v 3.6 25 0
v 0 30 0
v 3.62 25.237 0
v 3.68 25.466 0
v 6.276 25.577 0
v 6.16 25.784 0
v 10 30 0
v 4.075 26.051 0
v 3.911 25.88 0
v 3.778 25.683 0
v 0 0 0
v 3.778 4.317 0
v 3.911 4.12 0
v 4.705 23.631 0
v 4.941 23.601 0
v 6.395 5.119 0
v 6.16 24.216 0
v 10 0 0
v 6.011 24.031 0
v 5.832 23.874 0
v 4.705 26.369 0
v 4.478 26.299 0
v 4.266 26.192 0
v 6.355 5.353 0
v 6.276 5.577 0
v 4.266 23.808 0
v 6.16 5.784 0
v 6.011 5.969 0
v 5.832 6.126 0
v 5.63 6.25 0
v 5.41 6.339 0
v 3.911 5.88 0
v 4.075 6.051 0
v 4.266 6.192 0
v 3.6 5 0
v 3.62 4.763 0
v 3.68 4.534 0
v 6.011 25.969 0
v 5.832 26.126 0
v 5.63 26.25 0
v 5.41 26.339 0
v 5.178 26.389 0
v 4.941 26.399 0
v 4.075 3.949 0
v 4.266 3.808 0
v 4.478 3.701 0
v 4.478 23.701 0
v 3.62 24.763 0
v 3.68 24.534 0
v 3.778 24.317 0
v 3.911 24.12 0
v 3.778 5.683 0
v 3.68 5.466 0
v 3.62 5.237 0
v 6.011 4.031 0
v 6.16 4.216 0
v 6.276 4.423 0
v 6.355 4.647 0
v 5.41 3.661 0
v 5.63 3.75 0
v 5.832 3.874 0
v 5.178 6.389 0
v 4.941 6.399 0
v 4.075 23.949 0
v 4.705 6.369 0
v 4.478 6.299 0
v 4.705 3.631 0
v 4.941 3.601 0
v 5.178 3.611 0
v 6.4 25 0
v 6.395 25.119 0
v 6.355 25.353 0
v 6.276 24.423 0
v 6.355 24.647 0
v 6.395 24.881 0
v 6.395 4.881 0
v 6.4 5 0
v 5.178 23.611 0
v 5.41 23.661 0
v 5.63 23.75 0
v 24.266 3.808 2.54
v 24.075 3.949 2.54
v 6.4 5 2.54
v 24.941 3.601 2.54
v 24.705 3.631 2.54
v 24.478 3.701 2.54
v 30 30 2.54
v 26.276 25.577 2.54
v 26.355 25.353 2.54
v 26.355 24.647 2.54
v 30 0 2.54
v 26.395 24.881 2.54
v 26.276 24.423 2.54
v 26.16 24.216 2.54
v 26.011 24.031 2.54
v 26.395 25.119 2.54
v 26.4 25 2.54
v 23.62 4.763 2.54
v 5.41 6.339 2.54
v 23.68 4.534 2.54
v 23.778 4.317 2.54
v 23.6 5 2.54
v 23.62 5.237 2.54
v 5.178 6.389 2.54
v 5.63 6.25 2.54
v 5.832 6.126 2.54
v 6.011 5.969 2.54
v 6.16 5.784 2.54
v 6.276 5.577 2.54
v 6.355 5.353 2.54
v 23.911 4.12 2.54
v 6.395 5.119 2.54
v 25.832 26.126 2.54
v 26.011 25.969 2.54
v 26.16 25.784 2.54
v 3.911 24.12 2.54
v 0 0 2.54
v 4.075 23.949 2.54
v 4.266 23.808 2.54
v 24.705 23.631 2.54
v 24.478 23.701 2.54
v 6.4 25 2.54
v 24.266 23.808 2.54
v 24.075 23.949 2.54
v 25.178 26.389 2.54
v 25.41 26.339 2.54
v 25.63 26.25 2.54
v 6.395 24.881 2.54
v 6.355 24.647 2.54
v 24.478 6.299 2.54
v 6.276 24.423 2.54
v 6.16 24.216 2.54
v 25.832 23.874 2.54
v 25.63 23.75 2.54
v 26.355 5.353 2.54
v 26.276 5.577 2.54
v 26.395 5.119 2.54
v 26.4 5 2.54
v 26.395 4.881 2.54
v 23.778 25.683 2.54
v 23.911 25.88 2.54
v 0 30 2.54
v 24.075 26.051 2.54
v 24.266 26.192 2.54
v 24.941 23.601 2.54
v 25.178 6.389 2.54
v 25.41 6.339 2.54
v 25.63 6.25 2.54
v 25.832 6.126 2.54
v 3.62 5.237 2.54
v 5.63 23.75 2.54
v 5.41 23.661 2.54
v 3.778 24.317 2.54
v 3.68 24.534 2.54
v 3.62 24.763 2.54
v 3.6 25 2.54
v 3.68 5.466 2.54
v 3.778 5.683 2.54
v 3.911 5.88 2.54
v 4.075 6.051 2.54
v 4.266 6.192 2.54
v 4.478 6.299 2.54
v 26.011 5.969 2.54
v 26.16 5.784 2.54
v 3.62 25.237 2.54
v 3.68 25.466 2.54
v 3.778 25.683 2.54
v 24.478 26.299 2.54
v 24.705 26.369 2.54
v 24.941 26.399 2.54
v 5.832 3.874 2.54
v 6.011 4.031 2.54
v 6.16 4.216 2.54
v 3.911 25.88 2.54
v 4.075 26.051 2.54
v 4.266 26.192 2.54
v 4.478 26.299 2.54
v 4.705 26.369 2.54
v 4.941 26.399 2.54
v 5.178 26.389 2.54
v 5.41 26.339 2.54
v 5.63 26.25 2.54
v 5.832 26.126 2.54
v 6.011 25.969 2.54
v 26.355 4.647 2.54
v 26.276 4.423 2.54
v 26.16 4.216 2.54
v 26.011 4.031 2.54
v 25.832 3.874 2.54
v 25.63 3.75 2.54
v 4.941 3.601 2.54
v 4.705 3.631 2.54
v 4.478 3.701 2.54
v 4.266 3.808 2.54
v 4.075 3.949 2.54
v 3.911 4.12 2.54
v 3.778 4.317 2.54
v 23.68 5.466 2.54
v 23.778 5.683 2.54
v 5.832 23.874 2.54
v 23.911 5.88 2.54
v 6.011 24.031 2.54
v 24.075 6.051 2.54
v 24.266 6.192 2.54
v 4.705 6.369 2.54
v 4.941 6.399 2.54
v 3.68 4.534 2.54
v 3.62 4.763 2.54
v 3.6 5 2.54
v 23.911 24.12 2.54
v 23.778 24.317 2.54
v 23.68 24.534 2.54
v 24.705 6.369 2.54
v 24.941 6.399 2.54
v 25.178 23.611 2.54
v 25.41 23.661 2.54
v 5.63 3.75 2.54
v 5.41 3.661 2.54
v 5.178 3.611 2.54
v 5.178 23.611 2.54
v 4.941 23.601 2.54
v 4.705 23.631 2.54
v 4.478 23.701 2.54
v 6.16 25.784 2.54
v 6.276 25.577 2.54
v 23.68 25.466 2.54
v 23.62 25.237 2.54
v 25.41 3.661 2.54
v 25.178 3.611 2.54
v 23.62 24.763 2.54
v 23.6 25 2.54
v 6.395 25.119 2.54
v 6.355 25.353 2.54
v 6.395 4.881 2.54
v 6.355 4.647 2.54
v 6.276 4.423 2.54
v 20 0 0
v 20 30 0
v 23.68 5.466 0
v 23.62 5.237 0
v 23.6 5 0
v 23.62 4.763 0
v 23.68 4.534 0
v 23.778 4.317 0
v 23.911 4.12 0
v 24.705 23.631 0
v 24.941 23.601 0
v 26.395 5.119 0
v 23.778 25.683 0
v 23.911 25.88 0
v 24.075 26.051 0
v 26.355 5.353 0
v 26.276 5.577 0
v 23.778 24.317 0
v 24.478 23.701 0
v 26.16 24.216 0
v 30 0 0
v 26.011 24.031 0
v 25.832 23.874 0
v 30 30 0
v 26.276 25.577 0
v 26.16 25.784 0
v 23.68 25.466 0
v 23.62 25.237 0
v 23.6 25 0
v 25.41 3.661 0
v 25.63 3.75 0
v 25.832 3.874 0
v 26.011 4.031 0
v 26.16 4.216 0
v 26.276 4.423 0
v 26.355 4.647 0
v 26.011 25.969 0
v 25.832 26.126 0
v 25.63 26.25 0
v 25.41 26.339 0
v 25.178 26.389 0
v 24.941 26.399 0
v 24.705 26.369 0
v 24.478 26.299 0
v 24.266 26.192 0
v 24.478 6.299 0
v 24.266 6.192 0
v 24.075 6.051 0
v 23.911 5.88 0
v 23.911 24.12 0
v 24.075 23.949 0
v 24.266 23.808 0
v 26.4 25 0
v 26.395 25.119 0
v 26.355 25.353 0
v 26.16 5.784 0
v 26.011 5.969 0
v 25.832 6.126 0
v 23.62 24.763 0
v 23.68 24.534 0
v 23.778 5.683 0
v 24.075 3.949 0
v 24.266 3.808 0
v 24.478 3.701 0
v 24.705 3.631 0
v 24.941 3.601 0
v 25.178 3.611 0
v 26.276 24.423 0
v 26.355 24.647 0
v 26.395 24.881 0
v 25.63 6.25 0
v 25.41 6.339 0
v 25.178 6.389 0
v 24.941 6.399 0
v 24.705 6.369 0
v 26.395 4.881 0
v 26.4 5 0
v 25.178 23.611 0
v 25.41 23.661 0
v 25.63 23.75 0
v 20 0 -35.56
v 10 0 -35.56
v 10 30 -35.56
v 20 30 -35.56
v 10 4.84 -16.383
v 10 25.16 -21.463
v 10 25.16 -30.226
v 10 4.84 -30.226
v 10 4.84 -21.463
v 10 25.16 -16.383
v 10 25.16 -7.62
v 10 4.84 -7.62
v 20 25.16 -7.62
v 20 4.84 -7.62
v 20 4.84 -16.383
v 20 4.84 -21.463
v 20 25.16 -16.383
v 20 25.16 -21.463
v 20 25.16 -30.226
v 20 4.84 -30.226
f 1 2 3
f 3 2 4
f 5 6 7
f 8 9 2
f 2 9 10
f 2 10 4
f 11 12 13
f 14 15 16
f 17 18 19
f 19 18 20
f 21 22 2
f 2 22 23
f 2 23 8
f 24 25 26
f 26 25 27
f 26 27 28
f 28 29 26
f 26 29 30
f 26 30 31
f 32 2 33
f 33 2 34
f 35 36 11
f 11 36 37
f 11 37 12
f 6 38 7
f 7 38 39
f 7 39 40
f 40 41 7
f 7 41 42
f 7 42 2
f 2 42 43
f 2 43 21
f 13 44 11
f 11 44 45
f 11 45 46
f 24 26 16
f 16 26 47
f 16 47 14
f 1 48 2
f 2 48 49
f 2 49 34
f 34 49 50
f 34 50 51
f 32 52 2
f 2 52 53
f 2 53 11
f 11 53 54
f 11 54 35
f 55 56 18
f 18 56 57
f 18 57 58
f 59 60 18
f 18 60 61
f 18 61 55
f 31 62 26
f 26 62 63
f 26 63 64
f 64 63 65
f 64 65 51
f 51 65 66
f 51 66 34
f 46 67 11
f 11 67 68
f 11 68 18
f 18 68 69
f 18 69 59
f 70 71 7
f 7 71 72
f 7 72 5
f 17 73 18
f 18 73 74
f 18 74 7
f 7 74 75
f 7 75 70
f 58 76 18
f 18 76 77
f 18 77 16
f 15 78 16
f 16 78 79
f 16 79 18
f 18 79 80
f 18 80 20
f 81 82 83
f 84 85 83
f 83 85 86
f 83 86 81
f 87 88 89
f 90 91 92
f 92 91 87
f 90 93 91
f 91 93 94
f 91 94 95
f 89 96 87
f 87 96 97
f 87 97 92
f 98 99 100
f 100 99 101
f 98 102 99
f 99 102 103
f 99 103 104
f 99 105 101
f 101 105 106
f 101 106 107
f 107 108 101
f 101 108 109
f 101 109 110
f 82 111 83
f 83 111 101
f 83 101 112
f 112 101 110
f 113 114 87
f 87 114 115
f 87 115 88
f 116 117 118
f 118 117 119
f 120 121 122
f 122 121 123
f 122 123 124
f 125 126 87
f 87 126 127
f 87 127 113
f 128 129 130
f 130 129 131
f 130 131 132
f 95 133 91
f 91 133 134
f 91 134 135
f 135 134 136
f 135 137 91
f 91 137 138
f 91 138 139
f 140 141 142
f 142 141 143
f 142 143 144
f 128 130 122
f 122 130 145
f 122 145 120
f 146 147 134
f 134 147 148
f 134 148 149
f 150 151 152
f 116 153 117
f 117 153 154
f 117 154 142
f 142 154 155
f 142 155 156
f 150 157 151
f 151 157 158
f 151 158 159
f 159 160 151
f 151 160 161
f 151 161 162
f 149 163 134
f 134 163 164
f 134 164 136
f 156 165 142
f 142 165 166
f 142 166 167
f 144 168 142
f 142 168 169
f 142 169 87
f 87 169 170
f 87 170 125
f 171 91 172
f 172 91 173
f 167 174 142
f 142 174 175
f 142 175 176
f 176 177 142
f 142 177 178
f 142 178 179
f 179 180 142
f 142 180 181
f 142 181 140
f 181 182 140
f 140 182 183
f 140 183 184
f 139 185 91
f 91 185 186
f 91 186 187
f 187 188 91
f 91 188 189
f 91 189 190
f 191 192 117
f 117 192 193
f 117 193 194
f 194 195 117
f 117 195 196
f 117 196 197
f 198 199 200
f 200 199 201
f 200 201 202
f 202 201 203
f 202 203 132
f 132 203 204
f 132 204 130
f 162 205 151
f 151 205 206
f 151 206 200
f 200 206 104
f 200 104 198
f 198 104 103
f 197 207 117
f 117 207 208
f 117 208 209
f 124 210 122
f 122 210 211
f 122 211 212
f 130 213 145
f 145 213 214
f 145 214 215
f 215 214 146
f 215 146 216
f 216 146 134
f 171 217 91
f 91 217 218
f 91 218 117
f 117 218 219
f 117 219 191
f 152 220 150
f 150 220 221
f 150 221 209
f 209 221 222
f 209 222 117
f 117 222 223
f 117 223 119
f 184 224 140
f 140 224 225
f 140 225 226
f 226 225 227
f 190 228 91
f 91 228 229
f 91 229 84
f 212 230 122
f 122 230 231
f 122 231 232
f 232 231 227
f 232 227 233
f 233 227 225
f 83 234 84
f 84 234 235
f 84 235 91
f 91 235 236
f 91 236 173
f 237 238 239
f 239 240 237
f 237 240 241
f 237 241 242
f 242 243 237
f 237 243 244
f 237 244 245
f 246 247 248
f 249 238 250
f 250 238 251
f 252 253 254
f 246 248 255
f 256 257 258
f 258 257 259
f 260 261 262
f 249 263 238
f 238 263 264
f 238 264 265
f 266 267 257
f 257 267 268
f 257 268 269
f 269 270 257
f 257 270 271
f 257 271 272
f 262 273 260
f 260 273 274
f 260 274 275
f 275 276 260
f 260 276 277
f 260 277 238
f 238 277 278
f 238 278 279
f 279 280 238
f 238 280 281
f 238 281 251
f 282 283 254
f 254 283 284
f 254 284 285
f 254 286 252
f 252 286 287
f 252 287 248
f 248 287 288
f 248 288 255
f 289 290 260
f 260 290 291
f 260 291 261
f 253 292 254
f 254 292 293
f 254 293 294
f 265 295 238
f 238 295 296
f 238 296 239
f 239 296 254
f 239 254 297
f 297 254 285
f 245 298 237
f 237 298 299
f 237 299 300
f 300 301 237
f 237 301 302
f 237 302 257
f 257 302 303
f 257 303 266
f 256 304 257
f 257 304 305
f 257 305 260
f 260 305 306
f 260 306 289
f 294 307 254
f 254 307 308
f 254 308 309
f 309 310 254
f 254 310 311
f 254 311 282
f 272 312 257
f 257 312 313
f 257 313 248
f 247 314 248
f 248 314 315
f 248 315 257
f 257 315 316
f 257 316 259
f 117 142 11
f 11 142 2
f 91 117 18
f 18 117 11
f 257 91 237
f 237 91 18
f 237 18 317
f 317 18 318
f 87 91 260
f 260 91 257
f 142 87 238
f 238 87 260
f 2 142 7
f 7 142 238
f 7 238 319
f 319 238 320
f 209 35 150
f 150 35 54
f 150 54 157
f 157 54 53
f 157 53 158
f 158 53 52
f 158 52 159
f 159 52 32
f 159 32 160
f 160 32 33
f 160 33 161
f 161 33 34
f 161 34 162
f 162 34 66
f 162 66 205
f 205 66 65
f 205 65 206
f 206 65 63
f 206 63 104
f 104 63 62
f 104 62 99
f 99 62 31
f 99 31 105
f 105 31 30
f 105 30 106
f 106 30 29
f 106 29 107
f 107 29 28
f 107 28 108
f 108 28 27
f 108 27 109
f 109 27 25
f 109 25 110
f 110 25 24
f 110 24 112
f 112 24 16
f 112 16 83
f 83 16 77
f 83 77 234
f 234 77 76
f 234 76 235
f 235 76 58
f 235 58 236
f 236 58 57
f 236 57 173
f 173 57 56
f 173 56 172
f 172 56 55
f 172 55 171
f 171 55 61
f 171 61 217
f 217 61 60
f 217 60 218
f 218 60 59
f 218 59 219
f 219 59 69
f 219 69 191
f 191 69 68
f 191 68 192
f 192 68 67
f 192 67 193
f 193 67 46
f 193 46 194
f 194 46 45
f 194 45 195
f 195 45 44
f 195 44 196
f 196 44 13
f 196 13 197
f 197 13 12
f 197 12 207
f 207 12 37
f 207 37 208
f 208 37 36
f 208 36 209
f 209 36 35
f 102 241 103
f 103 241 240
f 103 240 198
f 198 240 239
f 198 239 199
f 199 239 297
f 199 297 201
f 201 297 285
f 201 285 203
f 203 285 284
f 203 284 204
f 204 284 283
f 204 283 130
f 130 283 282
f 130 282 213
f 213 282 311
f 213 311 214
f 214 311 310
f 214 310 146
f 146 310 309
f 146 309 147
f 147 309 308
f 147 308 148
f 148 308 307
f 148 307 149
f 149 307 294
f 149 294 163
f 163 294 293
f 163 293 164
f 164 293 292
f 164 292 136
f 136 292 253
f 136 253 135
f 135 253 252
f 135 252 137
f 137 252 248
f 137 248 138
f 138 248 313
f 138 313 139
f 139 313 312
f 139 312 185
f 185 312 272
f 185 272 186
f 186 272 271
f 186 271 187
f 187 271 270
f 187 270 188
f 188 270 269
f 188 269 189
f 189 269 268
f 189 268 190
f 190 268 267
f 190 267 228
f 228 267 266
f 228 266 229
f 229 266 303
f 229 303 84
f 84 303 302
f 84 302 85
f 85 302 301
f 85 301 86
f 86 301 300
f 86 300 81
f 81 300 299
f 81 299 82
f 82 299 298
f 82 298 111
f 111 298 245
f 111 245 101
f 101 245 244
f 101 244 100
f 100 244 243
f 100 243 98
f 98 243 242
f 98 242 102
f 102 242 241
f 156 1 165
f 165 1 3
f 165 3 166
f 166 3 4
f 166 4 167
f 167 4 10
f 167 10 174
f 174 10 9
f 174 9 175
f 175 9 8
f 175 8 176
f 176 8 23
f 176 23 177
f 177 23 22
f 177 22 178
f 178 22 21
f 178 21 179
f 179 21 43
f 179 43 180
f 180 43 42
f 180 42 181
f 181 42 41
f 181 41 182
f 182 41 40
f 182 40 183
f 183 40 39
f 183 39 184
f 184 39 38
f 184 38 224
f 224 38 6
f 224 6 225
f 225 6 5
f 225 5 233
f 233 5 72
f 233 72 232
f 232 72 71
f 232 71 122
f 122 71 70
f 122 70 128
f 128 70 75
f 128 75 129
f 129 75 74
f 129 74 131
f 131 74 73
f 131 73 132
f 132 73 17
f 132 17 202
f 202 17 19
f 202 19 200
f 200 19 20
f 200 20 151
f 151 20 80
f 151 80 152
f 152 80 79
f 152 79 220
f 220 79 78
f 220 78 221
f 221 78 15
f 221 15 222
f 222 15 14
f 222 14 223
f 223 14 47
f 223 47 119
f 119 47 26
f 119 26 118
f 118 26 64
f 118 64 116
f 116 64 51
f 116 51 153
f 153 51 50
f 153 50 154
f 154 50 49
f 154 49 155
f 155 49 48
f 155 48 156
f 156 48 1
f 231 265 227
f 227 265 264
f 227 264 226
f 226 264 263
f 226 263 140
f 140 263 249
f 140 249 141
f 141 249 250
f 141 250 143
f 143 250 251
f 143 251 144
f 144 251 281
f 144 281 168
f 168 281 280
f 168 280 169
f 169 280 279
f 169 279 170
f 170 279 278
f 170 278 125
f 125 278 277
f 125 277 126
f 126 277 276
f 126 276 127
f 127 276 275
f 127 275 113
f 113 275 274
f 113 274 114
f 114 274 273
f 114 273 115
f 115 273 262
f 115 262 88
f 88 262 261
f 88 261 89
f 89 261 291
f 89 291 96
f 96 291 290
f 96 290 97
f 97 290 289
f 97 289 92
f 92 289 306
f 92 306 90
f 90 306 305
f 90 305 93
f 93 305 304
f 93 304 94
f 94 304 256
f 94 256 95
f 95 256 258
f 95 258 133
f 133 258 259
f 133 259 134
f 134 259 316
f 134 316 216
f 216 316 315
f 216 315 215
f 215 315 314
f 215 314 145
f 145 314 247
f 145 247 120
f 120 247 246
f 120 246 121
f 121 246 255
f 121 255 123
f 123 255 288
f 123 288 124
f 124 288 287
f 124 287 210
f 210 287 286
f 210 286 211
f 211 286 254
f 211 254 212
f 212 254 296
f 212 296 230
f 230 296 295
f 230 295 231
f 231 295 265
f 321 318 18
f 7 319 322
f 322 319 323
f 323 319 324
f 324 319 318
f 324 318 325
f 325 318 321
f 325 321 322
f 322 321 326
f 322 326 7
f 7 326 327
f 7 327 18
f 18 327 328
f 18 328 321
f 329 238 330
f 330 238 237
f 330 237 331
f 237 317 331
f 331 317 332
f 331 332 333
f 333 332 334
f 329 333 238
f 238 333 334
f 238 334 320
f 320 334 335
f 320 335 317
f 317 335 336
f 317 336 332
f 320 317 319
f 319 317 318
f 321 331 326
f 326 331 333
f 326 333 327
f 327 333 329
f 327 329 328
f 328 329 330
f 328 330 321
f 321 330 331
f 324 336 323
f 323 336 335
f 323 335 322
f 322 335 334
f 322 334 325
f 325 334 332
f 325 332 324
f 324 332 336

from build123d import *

# Parameters (mm, degrees)
SKETCH2_W           = 30
SKETCH2_H           = 30
SKETCH2_R           = 1.4
BOSS_EXTRUDE1_DEPTH = 2.54
SKETCH3_W           = 10
SKETCH3_H           = 30
BOSS_EXTRUDE2_DEPTH = 35.56
SKETCH4_W           = 8.763
SKETCH4_H           = 20.32
CUT_EXTRUDE1_DEPTH  = 35.56


with BuildPart() as part:
    # Sketch2 → Boss-Extrude1 (new body)
    with BuildSketch(Plane.XY):
        with Locations((15, 15)):
            Rectangle(SKETCH2_W, SKETCH2_H)
        with Locations((5, 5)):
            Circle(SKETCH2_R, mode=Mode.SUBTRACT)
        with Locations((25, 5)):
            Circle(SKETCH2_R, mode=Mode.SUBTRACT)
        with Locations((5, 25)):
            Circle(SKETCH2_R, mode=Mode.SUBTRACT)
        with Locations((25, 25)):
            Circle(SKETCH2_R, mode=Mode.SUBTRACT)
    extrude(amount=BOSS_EXTRUDE1_DEPTH)

    # Sketch3 → Boss-Extrude2 (add)
    with BuildSketch(Plane(origin=(0, 0, 0), x_dir=(-1, 0, 0), z_dir=(0, 0, -1))):
        with Locations((-15, 15)):
            Rectangle(SKETCH3_W, SKETCH3_H)
    extrude(amount=BOSS_EXTRUDE2_DEPTH)

    # Sketch4 → Cut-Extrude1 (cut)
    with BuildSketch(Plane.ZY.offset(-10)):
        with Locations((-25.8445, 15)):
            Rectangle(SKETCH4_W, SKETCH4_H)
        with Locations((-12.0015, 15)):
            Rectangle(SKETCH4_W, SKETCH4_H)
    extrude(amount=-CUT_EXTRUDE1_DEPTH, mode=Mode.SUBTRACT)


solid = part.part
